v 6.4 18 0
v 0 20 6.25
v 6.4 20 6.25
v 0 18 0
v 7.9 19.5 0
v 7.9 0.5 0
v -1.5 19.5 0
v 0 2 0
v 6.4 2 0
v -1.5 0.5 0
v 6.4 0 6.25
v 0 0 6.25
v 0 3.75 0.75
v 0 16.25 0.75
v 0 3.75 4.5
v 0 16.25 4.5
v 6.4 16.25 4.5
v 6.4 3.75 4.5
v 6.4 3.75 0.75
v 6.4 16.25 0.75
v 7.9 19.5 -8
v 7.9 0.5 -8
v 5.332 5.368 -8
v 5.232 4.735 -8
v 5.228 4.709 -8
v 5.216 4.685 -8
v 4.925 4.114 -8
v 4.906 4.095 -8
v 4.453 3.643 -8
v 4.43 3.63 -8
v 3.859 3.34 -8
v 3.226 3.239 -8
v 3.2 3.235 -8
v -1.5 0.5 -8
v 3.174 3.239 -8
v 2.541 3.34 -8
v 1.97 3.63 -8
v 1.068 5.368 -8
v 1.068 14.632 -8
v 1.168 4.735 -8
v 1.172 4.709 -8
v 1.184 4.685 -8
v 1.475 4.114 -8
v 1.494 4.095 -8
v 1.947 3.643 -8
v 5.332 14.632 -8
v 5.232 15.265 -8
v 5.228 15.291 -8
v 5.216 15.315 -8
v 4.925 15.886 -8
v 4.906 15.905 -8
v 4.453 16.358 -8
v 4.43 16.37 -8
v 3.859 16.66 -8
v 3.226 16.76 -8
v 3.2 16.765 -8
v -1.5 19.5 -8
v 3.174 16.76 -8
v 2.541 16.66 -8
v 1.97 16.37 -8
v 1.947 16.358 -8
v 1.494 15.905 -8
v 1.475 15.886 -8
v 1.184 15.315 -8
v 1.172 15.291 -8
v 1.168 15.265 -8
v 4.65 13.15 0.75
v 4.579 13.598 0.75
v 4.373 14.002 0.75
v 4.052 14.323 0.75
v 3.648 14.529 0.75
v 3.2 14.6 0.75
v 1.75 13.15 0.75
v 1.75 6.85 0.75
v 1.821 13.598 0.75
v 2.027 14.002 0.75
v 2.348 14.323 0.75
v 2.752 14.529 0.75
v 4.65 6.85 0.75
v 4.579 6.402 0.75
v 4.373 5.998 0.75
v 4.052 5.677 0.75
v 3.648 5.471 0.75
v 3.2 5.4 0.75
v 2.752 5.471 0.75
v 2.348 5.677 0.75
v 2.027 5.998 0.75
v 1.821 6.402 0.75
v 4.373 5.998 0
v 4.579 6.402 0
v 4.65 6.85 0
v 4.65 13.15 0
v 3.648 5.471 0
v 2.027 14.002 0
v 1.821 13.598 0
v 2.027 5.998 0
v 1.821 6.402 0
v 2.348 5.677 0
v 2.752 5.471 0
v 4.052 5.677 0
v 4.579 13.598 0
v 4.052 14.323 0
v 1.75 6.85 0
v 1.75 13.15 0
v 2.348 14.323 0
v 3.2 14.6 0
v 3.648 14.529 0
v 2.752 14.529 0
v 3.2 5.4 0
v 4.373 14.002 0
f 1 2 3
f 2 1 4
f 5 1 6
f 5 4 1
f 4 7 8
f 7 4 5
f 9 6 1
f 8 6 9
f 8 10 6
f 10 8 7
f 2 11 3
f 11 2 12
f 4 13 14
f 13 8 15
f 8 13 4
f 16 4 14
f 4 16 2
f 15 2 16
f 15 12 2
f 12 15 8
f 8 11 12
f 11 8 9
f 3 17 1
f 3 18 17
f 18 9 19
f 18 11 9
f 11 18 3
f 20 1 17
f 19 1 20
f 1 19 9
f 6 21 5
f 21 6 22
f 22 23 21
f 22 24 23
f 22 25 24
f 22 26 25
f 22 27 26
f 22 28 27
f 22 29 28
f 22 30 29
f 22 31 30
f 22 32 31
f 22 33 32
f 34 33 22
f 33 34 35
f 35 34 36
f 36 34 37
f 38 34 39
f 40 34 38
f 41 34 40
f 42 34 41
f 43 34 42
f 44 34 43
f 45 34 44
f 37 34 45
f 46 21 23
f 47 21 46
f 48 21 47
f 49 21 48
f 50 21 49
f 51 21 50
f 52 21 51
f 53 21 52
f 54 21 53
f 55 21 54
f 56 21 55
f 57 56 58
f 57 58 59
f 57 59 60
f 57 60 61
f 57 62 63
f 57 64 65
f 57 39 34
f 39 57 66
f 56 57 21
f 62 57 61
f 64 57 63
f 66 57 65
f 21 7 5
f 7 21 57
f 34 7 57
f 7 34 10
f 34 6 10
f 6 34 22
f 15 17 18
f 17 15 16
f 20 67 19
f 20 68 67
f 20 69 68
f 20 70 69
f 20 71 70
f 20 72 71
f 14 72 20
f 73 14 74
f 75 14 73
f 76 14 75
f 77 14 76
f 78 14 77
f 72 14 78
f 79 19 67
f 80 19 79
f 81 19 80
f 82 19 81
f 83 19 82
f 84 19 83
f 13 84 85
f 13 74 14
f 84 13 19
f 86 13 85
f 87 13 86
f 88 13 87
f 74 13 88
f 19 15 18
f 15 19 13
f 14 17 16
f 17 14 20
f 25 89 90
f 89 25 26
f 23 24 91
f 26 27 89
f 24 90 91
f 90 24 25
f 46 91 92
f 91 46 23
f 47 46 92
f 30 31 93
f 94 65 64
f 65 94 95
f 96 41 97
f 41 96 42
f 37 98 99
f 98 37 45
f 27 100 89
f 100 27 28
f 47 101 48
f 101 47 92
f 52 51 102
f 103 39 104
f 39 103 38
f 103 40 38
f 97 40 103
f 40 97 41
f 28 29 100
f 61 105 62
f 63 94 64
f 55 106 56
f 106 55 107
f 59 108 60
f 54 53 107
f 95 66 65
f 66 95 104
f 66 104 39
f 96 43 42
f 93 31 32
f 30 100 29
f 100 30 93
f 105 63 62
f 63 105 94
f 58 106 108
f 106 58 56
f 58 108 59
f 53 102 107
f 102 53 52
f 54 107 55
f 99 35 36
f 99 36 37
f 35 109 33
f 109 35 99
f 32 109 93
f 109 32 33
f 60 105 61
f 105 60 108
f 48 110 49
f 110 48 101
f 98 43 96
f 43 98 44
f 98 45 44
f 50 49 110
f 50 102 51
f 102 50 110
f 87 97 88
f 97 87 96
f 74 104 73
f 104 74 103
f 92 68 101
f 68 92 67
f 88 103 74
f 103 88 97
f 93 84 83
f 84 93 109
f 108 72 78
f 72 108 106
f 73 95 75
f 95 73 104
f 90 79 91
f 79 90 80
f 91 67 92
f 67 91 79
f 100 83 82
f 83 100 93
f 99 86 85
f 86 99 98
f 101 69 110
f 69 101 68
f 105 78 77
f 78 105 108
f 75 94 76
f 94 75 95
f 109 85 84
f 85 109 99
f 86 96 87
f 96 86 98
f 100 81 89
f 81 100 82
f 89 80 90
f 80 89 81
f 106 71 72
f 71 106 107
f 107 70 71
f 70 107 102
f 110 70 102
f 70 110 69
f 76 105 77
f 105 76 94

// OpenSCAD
// 2021/01 Andrew Villeneuve
// andrewmv@gmail.com
// 
// Model for printing around a YubiKey Nano 5C to make the device
// easier to insert/remove from devices without needing tools, 
// and ideally somewhat harder to lose.

// All units in mm

// *** Fixed Mechanical dimentions ***
// Names are hard. I'll attach a scan or something later.
A = 12;
B = 3.25;
C = 7;
D = 8.7;
E = 2.4;
F = 6.4;
G = 1.0;

// *** Configurable dimentions ***
H = 2;
I = 1;
K = 3;
J = 1;

// Adjust for thermal expansion and printer precision
tolerance = 0.25;

// *** Gemoetry computations ***

// Convienence constants
x_size = H + B + G;
y_size = (2*I) + A + (2*K); 
z_size = F;
y_size_bot = (2 * J) + (2 * I) + A;

// Extruded polyhedron geometry
points = [
	[0, 0],
	[0, (2*I) + A + (2*K)],
	[H + B + G, K + (2*I) + A + J],
	[H + B + G, K - J]
];
paths = [[0, 1, 2, 3]];

// geometry of interior compartment
cut1_corner = [H - tolerance,
			   K + I - tolerance, 
			   -tolerance];
cut1_size = [B + 2 * tolerance, 
			 A + 2 * tolerance,
			 F + 2 * tolerance];

// geometry of USB-C slot
cut2_corner = [F/2,
			   y_size / 2,
			   0];
cut2_size = [G + C + ( 2 * tolerance ),
			 D + ( 2 * tolerance ),
			 E + ( 2 * tolerance )];

// *** Support modules ***

// Cross-section of USB-C slot
module c_slot_cs(size) {
	s=size;
	r=s[2] / 2;
	hull() {
		translate([0, -s[1]/2 + r, 0])	circle(r, $fn=20);
		translate([0, s[1]/2 - r, 0])	circle(r, $fn=20);
	}
}

// Conically extruded USB-C slot
// The scaling factor helps ensure stringing in support
// structure won't obstruct part insertion
module c_slot(size) {
	s=size;
	c=[0, s[2] / 2, 0];
	sc=1.5;

	rotate([0, 180, 0]) {
		linear_extrude(s[0], scale=sc) {
			c_slot_cs(s);
		}
	}
	linear_extrude(G) {
		c_slot_cs(s);
	}
} 

// extrude polygon into the functional section of
// the model
module mod1() {
	// How much wider than the model should the support structure be?
	support_base_setback = 3;
	// How tall should the support strcuture be?
	support_base_thickness = C + 1;
	linear_extrude(F) {
		polygon(points, paths, convexity = 1);
	}
	translate([x_size,
			   K - I - support_base_setback / 2,
			   -support_base_setback / 2])
	cube(size=[support_base_thickness,
			   y_size_bot + support_base_setback,
			   z_size + support_base_setback]);
}

// *** Draw shapes ***

difference() {
	translate([0, 0, H + B + G ])
	rotate([0, 90, 0]) {
		difference() {
			// Main structure of model
			mod1();
			// Hollow out section for the YubiKey to insert
			translate(cut1_corner) {
				cube(size=cut1_size);
			}
		}
	}
	translate(cut2_corner) {
		// HOllow out the USB-C slot
		c_slot(size=cut2_size);
	}
}
